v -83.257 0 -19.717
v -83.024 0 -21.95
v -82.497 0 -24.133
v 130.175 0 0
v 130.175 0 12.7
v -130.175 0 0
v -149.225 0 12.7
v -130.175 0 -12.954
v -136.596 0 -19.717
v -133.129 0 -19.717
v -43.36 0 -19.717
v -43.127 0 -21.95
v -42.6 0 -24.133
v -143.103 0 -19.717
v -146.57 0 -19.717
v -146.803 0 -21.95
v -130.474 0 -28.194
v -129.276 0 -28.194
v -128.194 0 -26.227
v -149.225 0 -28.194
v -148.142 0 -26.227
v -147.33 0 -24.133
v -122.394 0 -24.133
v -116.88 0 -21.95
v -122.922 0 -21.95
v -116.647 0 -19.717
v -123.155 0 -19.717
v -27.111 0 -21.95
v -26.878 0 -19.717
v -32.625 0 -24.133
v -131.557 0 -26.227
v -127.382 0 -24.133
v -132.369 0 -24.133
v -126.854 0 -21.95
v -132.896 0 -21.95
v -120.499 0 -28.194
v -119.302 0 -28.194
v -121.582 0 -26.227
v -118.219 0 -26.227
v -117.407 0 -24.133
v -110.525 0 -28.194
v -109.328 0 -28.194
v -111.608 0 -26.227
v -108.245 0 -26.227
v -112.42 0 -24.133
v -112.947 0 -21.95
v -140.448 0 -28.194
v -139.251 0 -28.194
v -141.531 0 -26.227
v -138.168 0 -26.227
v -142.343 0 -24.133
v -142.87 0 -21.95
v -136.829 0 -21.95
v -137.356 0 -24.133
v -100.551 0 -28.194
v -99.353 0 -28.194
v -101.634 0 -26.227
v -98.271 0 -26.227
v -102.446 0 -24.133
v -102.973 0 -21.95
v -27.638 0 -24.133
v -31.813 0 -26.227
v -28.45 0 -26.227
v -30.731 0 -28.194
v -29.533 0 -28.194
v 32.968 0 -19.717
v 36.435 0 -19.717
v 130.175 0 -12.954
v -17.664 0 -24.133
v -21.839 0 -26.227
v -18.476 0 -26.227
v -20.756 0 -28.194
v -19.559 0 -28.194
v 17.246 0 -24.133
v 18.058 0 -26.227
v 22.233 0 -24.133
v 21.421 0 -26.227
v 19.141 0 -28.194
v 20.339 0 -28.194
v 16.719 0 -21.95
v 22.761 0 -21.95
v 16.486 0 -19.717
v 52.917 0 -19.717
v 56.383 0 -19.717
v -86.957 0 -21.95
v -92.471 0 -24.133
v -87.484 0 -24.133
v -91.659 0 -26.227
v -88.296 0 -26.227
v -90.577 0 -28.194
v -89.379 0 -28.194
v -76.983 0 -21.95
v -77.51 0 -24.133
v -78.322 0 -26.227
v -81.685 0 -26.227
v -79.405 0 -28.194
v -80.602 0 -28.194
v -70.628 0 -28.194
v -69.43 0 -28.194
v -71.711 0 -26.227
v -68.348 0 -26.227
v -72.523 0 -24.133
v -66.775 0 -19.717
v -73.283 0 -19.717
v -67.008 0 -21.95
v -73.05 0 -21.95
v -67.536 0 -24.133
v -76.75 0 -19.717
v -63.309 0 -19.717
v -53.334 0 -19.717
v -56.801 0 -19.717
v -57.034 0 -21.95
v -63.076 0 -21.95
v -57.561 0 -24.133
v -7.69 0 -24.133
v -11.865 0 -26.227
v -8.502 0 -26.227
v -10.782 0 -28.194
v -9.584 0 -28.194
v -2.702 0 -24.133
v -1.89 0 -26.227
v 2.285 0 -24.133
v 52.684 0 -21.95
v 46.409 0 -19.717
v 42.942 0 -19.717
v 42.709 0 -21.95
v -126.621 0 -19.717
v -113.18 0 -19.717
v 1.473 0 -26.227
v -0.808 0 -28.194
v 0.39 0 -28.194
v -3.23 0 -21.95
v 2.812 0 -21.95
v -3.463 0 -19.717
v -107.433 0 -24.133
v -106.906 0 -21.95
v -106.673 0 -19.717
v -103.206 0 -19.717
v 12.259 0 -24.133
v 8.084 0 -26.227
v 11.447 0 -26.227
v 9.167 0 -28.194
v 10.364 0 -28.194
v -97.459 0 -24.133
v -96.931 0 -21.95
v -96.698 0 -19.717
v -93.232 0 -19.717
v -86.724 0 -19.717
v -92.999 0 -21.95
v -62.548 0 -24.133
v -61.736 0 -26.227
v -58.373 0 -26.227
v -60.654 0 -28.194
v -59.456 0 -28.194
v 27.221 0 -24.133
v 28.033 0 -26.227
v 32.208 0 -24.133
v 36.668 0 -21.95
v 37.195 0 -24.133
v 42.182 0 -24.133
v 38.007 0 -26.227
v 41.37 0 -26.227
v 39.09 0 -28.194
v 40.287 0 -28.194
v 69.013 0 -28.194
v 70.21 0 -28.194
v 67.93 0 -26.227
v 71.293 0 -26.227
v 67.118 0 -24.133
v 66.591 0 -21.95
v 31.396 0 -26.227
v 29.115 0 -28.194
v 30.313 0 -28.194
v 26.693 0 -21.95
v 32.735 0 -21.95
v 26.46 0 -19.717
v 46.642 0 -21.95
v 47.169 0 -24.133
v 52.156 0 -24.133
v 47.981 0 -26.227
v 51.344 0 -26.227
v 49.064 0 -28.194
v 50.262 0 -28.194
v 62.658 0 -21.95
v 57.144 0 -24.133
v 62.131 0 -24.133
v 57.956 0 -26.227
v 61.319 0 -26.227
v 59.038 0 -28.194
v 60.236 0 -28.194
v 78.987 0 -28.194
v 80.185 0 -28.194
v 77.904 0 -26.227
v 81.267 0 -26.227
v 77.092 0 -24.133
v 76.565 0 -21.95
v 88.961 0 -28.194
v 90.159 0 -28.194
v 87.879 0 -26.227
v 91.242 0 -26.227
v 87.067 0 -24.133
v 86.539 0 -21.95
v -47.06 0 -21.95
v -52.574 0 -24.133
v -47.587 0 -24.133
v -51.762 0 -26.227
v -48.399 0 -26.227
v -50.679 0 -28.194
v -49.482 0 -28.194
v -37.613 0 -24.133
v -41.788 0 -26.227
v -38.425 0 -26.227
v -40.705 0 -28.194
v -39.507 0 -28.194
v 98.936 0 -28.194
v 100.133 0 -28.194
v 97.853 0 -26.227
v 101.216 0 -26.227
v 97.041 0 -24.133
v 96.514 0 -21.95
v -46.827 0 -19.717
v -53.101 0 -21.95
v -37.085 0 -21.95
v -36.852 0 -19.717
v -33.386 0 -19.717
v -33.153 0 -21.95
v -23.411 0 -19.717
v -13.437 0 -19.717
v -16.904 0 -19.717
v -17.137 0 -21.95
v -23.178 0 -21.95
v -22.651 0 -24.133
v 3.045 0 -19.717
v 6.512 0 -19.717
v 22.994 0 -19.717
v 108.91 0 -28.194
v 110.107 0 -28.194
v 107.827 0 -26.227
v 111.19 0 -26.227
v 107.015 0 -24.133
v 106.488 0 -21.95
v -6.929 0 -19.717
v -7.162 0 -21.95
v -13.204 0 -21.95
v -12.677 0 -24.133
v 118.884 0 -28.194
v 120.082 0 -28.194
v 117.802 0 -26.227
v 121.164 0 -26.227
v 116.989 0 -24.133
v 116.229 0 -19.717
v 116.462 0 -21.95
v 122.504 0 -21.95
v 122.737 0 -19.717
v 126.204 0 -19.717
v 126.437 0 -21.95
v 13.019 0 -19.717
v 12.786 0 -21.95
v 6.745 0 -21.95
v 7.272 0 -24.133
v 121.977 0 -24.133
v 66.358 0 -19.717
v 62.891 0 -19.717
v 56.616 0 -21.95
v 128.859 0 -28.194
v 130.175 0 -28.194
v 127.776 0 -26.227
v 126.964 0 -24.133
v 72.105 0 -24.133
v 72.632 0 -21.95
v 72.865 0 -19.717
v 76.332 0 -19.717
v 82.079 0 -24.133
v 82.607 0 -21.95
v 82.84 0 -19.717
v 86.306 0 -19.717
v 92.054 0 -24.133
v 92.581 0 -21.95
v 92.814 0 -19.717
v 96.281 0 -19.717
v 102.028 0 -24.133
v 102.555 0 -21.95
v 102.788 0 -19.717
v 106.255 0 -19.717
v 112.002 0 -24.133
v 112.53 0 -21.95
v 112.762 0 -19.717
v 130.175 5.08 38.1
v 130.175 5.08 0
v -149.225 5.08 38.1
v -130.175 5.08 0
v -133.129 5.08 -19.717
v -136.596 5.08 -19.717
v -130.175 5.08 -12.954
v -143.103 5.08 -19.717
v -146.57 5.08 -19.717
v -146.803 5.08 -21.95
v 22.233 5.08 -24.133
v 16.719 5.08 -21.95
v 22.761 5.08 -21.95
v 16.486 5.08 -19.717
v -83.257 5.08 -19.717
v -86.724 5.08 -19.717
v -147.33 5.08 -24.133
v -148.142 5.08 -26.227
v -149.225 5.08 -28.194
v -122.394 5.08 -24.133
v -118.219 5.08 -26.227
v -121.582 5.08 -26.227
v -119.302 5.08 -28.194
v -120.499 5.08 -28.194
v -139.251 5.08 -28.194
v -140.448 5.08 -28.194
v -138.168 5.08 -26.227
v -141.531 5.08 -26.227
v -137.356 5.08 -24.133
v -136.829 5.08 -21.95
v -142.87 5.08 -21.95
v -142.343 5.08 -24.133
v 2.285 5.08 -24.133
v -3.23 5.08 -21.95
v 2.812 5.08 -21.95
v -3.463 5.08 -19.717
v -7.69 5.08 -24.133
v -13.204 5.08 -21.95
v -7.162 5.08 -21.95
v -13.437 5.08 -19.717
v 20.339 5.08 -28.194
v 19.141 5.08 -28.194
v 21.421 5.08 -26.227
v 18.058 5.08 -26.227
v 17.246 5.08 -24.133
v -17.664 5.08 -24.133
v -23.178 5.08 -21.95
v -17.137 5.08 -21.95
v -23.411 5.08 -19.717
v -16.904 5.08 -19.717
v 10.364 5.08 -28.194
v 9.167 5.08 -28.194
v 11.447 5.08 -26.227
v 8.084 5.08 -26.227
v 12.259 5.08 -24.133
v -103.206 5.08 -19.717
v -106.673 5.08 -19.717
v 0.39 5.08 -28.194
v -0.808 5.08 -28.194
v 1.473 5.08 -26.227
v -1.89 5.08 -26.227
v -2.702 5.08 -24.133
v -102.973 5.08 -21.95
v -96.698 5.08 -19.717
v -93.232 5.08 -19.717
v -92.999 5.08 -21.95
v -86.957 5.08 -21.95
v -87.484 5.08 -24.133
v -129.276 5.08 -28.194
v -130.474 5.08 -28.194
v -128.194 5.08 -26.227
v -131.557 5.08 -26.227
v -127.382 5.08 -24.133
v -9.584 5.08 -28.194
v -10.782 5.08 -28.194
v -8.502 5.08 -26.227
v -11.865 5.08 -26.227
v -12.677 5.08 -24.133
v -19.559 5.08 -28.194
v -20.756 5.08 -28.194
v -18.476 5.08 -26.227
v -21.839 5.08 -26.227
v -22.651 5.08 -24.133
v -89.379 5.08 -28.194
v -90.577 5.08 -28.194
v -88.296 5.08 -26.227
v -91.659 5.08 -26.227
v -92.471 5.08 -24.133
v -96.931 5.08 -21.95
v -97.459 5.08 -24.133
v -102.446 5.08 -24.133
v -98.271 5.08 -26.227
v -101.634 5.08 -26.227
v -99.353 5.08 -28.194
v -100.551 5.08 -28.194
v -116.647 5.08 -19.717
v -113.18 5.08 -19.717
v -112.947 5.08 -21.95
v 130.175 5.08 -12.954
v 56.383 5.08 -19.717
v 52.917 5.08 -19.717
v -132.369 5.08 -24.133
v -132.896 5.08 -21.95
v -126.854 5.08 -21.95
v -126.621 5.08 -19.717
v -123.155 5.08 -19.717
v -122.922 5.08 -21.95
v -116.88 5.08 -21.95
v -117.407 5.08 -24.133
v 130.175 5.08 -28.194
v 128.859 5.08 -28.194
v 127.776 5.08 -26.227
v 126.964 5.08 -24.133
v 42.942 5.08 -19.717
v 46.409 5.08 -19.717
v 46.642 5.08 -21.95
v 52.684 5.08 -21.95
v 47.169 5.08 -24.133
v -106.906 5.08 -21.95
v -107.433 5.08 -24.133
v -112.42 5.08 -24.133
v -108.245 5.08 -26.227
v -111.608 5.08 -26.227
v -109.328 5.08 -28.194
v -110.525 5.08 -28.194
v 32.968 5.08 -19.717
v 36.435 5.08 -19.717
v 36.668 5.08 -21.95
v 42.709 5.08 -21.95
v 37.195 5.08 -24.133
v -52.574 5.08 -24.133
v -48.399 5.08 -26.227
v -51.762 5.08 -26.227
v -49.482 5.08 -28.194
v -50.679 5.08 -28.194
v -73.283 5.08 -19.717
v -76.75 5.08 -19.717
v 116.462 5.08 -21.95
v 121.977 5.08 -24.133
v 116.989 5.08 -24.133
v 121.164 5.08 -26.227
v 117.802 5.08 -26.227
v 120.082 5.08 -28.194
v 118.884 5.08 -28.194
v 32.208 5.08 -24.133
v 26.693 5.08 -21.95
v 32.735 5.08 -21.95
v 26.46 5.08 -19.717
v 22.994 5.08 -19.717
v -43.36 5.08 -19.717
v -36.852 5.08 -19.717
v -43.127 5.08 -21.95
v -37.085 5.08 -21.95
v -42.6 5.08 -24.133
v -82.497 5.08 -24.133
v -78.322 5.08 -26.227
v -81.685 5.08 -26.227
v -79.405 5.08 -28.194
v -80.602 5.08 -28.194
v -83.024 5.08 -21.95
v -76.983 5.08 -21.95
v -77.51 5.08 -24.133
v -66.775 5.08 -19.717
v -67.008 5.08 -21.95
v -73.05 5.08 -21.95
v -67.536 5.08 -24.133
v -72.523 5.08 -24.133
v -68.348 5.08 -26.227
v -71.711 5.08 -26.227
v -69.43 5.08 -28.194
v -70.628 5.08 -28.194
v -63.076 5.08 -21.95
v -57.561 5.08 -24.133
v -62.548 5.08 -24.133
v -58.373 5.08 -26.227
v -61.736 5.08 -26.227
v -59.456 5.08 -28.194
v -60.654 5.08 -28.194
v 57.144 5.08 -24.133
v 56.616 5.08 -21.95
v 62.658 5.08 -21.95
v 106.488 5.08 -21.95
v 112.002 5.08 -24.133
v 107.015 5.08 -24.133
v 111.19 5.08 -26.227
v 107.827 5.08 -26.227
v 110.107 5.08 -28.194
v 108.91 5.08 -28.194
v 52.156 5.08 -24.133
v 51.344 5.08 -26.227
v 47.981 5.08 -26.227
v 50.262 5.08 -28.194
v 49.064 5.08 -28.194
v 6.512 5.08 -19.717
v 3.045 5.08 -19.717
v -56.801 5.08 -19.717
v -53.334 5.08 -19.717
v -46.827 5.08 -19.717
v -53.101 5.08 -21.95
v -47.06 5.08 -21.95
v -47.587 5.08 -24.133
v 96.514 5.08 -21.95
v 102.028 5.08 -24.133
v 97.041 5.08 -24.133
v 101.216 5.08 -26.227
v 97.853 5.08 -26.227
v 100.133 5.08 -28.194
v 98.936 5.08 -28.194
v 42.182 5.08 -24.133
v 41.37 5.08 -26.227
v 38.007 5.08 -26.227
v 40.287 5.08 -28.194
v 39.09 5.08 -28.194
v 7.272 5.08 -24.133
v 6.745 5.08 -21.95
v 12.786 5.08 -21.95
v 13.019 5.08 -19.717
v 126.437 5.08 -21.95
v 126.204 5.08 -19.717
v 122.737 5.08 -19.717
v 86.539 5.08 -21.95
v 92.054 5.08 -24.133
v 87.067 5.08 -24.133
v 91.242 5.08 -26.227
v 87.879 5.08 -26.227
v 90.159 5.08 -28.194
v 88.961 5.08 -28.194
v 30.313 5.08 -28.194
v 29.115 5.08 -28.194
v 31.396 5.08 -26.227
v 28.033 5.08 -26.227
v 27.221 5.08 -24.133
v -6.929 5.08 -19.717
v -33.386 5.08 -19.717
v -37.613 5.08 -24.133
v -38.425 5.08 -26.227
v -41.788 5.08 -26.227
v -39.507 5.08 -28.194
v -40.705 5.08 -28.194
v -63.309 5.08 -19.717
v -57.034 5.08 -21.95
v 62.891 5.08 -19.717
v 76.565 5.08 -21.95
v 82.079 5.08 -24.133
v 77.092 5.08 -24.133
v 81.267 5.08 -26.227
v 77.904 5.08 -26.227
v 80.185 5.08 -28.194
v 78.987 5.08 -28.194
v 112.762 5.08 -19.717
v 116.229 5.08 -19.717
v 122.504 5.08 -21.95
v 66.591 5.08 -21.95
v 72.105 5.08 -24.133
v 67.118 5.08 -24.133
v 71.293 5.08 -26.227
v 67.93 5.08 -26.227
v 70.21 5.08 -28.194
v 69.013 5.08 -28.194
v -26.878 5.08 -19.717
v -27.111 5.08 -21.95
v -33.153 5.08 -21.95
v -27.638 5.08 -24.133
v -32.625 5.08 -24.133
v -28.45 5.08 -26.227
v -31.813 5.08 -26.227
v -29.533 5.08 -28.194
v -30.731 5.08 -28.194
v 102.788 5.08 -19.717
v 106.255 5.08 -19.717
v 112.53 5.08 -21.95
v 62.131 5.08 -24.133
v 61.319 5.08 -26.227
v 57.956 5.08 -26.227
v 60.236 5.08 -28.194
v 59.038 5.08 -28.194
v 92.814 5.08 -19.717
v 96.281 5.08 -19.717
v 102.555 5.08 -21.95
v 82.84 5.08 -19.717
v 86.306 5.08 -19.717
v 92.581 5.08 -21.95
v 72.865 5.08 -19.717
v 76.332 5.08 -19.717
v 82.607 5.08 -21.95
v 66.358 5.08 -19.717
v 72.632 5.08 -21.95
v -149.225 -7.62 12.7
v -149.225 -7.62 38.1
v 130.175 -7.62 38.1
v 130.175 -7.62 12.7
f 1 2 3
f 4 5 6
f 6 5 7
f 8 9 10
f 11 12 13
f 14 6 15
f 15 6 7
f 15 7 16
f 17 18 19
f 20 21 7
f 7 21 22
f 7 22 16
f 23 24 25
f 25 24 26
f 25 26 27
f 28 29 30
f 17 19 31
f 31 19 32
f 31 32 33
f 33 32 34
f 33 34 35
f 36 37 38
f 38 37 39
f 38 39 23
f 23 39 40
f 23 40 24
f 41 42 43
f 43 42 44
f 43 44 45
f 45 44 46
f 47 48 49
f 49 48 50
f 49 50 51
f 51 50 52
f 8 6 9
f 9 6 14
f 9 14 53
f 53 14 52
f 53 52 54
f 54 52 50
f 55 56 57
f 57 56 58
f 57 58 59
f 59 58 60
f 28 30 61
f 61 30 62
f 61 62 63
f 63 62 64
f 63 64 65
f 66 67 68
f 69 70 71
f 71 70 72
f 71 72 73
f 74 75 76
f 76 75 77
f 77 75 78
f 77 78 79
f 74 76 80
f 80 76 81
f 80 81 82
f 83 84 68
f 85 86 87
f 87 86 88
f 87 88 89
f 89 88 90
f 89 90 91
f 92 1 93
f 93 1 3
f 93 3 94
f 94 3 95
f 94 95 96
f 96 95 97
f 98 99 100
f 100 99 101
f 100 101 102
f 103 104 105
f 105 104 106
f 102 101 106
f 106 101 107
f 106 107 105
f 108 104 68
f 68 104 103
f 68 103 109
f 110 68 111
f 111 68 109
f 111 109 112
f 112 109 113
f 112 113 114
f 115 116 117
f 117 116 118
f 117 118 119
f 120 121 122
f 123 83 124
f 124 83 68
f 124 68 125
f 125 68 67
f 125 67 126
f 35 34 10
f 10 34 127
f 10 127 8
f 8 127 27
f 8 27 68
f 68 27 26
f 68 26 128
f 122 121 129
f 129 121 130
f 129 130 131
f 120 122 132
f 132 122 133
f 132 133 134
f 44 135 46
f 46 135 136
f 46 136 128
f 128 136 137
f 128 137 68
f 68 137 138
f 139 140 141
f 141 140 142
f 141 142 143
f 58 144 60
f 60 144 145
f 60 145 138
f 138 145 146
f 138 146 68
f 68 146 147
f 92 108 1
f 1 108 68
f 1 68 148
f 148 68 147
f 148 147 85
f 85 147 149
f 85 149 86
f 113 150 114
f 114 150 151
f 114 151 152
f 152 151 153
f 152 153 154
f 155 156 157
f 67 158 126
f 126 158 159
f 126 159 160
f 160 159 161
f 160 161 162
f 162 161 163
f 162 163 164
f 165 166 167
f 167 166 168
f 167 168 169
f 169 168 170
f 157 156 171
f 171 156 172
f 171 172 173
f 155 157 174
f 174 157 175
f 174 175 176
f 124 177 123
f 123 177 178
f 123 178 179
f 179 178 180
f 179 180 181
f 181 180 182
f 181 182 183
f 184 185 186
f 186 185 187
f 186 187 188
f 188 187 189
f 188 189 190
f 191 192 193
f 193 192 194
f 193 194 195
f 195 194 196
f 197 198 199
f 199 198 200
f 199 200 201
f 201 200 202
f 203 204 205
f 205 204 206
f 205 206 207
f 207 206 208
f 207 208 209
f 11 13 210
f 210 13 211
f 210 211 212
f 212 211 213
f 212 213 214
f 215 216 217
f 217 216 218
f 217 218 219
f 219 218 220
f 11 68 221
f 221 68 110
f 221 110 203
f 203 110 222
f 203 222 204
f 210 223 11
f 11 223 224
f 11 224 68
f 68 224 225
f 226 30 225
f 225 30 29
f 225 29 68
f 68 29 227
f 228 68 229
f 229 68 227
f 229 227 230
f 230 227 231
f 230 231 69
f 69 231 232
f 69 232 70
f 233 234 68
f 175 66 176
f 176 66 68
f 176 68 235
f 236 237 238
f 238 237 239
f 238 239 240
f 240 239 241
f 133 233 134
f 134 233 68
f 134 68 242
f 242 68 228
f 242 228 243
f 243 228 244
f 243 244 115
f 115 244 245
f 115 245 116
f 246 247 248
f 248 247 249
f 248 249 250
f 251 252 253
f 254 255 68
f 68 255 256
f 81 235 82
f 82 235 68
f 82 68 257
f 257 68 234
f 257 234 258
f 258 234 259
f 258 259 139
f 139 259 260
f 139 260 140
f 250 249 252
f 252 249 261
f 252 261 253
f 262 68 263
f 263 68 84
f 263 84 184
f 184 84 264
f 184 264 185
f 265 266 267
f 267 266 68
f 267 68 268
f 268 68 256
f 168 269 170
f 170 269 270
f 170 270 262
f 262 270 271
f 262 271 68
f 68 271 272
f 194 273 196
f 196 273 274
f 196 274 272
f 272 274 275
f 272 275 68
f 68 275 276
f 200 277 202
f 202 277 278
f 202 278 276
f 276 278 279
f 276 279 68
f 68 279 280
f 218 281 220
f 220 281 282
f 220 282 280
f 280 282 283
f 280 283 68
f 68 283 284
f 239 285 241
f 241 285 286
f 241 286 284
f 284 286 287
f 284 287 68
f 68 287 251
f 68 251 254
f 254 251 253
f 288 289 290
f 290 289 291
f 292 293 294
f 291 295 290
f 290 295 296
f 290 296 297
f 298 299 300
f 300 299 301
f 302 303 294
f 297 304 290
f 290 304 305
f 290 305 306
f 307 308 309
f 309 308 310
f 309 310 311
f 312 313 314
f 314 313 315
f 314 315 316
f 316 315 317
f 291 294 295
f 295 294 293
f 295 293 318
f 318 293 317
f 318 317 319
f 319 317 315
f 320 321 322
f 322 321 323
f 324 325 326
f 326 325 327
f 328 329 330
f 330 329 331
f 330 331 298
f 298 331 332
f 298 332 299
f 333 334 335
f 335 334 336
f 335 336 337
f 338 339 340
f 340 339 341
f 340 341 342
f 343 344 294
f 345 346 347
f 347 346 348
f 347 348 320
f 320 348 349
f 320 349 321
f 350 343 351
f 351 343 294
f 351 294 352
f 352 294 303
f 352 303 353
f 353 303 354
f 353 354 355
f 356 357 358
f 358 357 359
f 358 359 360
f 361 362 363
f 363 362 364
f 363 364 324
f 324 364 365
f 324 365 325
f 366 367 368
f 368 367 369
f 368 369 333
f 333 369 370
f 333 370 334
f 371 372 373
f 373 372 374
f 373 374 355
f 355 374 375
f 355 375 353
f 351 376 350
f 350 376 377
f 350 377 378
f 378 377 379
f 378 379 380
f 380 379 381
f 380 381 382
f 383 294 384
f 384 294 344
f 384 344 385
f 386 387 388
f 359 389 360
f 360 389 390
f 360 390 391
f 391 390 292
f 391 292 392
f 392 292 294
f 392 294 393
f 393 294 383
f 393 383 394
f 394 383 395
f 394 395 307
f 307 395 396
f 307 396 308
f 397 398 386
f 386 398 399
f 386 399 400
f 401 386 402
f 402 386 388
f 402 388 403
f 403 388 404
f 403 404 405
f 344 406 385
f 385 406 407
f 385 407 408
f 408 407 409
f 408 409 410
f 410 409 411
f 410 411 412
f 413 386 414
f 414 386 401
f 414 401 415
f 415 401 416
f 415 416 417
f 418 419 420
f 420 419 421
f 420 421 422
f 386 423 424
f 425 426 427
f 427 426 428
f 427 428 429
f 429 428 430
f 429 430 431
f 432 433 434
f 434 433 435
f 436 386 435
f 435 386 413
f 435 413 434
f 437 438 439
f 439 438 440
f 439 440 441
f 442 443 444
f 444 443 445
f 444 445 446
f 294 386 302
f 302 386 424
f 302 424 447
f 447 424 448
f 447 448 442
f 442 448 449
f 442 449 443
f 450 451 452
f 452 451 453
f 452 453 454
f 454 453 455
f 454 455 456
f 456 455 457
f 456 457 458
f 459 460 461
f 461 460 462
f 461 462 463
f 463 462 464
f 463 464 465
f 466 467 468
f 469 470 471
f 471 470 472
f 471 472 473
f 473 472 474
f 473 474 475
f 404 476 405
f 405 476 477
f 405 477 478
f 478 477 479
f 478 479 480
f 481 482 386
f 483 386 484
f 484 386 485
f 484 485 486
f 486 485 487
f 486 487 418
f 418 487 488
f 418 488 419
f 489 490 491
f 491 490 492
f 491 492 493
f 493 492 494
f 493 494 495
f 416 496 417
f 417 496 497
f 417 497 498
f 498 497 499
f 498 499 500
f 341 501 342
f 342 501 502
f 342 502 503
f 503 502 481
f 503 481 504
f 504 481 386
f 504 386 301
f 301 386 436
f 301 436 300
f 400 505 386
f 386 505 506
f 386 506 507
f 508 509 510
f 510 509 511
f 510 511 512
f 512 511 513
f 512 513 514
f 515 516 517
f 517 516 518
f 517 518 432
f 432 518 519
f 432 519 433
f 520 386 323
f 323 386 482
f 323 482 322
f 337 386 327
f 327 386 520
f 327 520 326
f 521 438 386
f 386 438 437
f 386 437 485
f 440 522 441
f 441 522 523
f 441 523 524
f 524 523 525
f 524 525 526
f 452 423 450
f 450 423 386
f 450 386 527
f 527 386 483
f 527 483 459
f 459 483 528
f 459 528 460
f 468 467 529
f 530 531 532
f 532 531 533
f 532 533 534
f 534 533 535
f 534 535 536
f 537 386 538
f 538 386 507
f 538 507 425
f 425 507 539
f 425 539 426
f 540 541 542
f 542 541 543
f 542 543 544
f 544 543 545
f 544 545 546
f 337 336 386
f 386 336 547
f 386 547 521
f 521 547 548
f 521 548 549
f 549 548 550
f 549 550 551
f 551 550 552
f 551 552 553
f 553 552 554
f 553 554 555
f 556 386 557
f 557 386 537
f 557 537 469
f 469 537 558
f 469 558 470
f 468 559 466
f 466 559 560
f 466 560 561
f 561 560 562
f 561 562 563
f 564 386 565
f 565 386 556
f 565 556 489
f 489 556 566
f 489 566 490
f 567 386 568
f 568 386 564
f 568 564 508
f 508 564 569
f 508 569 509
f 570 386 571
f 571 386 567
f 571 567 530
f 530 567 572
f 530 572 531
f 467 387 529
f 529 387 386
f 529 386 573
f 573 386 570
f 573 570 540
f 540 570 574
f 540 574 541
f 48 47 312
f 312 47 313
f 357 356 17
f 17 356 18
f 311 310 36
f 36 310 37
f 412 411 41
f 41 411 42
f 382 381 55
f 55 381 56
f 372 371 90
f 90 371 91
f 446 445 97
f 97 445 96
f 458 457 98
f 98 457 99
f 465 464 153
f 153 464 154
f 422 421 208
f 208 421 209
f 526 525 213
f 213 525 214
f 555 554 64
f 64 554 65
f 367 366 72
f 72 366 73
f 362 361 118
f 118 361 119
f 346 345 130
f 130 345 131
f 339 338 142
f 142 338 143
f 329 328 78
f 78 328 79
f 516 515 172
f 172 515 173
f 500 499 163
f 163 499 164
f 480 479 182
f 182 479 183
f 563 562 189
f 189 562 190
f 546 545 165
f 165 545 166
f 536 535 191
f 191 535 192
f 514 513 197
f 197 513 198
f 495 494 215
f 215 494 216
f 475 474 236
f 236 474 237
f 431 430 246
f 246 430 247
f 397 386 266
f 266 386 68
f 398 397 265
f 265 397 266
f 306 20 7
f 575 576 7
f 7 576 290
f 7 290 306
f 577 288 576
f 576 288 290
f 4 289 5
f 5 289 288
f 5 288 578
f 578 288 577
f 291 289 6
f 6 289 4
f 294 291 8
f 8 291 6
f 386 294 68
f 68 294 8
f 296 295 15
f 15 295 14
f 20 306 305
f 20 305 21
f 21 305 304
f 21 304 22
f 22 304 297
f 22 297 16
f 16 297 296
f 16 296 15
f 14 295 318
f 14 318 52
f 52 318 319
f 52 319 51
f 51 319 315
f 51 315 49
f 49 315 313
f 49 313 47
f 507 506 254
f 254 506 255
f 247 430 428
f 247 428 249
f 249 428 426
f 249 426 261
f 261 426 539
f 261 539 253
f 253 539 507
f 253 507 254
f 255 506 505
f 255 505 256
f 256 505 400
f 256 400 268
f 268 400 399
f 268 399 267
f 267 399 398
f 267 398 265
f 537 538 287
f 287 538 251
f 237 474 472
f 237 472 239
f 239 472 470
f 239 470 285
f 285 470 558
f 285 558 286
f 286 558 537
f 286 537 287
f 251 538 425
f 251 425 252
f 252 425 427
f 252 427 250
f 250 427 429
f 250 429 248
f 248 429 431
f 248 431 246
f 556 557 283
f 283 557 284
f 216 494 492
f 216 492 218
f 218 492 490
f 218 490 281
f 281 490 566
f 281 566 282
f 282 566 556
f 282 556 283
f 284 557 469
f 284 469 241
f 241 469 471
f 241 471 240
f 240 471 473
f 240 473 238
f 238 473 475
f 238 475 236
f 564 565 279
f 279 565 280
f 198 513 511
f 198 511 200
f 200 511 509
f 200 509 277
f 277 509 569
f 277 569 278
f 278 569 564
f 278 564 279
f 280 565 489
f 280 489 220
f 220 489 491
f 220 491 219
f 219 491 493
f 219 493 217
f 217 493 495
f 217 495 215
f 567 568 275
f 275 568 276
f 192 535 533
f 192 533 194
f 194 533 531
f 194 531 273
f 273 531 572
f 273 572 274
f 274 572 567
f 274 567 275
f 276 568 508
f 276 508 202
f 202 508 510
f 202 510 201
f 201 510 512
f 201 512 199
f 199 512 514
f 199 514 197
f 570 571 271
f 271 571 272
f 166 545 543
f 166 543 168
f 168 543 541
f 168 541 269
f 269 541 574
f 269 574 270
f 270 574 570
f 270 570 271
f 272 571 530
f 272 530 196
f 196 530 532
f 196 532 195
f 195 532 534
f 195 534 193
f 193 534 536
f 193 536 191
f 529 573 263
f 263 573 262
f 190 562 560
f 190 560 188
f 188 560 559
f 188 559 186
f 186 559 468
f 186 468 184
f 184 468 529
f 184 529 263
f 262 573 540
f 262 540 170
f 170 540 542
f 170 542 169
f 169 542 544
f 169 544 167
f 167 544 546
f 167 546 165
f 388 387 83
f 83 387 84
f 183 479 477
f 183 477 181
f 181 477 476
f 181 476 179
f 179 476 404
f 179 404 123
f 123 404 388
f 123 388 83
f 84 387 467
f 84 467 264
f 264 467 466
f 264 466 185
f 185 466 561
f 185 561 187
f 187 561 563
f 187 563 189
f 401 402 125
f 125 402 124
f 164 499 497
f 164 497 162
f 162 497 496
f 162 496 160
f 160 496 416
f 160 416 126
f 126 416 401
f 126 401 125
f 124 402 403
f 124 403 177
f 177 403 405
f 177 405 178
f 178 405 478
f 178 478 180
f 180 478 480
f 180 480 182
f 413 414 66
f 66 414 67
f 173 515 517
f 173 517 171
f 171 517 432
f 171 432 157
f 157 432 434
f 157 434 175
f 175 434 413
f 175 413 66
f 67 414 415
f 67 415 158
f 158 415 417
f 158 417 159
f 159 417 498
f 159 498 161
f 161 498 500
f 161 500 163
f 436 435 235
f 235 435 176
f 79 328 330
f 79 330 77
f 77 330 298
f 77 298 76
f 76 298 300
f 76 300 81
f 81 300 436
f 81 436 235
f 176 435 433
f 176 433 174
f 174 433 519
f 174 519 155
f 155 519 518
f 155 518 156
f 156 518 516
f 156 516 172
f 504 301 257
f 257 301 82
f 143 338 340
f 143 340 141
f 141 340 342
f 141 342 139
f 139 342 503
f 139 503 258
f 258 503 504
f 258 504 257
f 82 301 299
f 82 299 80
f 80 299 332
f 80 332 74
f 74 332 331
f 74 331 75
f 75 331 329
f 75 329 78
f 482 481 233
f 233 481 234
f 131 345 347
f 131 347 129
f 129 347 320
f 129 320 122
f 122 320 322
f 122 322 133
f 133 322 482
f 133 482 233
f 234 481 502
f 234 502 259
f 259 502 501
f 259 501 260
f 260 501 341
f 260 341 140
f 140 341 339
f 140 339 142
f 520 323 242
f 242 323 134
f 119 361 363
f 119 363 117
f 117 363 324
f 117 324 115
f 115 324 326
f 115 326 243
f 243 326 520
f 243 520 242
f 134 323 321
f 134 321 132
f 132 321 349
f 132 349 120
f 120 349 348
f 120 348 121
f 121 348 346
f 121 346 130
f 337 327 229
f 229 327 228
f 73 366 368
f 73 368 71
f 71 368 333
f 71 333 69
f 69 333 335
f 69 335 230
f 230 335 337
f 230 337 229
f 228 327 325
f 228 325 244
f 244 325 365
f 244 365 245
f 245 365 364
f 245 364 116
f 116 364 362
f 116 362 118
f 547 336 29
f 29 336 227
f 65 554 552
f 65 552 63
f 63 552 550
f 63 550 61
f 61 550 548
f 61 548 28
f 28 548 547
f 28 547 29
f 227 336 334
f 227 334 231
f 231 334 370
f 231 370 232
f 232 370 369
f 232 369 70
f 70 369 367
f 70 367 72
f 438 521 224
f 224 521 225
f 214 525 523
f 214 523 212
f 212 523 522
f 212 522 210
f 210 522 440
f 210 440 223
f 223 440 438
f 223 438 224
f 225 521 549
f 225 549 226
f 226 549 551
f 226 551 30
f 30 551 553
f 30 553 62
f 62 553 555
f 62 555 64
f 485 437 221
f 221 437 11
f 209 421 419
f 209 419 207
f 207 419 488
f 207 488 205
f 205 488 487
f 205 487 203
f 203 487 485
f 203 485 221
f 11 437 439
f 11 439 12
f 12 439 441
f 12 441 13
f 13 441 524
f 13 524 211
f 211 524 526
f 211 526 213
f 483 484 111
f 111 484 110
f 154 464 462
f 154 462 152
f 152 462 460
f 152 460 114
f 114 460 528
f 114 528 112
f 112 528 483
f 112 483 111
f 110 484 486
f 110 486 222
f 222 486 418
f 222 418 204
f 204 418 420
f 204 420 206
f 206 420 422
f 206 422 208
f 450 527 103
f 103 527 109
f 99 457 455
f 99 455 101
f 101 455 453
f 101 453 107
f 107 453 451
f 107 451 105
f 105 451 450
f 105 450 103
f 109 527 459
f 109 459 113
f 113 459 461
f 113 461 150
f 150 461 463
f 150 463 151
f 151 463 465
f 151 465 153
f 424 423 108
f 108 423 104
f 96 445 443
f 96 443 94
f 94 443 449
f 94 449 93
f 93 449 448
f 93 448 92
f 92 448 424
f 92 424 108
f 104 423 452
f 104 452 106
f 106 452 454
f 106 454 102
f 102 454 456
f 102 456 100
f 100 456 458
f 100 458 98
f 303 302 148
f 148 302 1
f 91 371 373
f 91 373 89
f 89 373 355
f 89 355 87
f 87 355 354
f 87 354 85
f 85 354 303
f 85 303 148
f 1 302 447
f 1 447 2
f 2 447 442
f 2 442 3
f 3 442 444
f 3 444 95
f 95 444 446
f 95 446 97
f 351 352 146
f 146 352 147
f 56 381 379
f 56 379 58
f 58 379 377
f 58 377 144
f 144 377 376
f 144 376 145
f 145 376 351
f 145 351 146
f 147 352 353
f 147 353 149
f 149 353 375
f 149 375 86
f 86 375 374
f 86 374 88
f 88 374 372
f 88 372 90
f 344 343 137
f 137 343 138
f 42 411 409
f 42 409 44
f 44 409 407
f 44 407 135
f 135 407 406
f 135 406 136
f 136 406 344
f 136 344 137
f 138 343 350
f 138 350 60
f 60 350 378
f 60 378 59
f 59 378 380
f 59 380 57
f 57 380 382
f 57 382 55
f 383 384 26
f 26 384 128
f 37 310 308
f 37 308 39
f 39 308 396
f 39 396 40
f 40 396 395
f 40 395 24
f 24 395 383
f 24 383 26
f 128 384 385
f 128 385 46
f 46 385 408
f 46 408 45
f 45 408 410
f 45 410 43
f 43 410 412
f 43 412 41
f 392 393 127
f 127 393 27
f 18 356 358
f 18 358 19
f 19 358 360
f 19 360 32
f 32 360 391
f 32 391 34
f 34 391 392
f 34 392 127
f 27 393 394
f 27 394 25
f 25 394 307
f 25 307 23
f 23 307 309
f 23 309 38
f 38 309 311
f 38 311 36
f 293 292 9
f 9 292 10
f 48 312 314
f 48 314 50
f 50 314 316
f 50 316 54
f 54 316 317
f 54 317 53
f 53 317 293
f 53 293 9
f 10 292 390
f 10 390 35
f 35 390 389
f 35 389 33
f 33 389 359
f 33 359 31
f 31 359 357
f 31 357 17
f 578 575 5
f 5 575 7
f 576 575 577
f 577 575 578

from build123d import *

# Parameters (mm, degrees)
BOSS_EXTRUDE1_DEPTH = 5.08
CUT_EXTRUDE1_DEPTH  = 155.095804696
LPATTERN1_COUNT     = 28
LPATTERN1_PITCH     = 9.974326
SKETCH4_W           = 279.4
SKETCH4_H           = 25.4
BOSS_EXTRUDE2_DEPTH = 7.62


with BuildPart() as part:
    # Sketch1 → Boss-Extrude1 (new body)
    with BuildSketch(Plane(origin=(0, 0, 0), x_dir=(1, 0, 0), z_dir=(0, 1, 0))):
        Polygon((-149.225, -38.1), (-149.225, 28.194), (130.175, 28.194), (130.175, 12.954), (-130.175, 12.954), (-130.175, 0), (130.175, 0), (130.175, -38.1), align=None)
    extrude(amount=BOSS_EXTRUDE1_DEPTH)

    # Sketch2 → Cut-Extrude1 (cut, through all)
    with BuildSketch(Plane(origin=(0, 5.08, 0), x_dir=(1, 0, 0), z_dir=(0, 1, 0))):
        with BuildLine():
            ThreePointArc((-146.56997683, 19.717013973), (-147.330155915, 24.13319761), (-149.225, 28.194))
            ThreePointArc((-149.225, 28.194), (-144.836574415, 28.369434802), (-140.448148829, 28.194))
            ThreePointArc((-140.448148829, 28.194), (-142.342992915, 24.13319761), (-143.103171999, 19.717013973))
            ThreePointArc((-143.103171999, 19.717013973), (-144.836574415, 19.749434802), (-146.56997683, 19.717013973))
        make_face()
    cut_extrude1 = extrude(amount=-CUT_EXTRUDE1_DEPTH, mode=Mode.SUBTRACT)

    # LPattern1: Cut-Extrude1 ×28
    with Locations(*[(i * LPATTERN1_PITCH, 0, 0) for i in range(1, LPATTERN1_COUNT)]):
        add(cut_extrude1, mode=Mode.SUBTRACT)

    # Sketch4 → Boss-Extrude2 (add)
    with BuildSketch(Plane.XZ):
        with Locations((-9.525, 25.4)):
            Rectangle(SKETCH4_W, SKETCH4_H)
    extrude(amount=BOSS_EXTRUDE2_DEPTH)


solid = part.part
